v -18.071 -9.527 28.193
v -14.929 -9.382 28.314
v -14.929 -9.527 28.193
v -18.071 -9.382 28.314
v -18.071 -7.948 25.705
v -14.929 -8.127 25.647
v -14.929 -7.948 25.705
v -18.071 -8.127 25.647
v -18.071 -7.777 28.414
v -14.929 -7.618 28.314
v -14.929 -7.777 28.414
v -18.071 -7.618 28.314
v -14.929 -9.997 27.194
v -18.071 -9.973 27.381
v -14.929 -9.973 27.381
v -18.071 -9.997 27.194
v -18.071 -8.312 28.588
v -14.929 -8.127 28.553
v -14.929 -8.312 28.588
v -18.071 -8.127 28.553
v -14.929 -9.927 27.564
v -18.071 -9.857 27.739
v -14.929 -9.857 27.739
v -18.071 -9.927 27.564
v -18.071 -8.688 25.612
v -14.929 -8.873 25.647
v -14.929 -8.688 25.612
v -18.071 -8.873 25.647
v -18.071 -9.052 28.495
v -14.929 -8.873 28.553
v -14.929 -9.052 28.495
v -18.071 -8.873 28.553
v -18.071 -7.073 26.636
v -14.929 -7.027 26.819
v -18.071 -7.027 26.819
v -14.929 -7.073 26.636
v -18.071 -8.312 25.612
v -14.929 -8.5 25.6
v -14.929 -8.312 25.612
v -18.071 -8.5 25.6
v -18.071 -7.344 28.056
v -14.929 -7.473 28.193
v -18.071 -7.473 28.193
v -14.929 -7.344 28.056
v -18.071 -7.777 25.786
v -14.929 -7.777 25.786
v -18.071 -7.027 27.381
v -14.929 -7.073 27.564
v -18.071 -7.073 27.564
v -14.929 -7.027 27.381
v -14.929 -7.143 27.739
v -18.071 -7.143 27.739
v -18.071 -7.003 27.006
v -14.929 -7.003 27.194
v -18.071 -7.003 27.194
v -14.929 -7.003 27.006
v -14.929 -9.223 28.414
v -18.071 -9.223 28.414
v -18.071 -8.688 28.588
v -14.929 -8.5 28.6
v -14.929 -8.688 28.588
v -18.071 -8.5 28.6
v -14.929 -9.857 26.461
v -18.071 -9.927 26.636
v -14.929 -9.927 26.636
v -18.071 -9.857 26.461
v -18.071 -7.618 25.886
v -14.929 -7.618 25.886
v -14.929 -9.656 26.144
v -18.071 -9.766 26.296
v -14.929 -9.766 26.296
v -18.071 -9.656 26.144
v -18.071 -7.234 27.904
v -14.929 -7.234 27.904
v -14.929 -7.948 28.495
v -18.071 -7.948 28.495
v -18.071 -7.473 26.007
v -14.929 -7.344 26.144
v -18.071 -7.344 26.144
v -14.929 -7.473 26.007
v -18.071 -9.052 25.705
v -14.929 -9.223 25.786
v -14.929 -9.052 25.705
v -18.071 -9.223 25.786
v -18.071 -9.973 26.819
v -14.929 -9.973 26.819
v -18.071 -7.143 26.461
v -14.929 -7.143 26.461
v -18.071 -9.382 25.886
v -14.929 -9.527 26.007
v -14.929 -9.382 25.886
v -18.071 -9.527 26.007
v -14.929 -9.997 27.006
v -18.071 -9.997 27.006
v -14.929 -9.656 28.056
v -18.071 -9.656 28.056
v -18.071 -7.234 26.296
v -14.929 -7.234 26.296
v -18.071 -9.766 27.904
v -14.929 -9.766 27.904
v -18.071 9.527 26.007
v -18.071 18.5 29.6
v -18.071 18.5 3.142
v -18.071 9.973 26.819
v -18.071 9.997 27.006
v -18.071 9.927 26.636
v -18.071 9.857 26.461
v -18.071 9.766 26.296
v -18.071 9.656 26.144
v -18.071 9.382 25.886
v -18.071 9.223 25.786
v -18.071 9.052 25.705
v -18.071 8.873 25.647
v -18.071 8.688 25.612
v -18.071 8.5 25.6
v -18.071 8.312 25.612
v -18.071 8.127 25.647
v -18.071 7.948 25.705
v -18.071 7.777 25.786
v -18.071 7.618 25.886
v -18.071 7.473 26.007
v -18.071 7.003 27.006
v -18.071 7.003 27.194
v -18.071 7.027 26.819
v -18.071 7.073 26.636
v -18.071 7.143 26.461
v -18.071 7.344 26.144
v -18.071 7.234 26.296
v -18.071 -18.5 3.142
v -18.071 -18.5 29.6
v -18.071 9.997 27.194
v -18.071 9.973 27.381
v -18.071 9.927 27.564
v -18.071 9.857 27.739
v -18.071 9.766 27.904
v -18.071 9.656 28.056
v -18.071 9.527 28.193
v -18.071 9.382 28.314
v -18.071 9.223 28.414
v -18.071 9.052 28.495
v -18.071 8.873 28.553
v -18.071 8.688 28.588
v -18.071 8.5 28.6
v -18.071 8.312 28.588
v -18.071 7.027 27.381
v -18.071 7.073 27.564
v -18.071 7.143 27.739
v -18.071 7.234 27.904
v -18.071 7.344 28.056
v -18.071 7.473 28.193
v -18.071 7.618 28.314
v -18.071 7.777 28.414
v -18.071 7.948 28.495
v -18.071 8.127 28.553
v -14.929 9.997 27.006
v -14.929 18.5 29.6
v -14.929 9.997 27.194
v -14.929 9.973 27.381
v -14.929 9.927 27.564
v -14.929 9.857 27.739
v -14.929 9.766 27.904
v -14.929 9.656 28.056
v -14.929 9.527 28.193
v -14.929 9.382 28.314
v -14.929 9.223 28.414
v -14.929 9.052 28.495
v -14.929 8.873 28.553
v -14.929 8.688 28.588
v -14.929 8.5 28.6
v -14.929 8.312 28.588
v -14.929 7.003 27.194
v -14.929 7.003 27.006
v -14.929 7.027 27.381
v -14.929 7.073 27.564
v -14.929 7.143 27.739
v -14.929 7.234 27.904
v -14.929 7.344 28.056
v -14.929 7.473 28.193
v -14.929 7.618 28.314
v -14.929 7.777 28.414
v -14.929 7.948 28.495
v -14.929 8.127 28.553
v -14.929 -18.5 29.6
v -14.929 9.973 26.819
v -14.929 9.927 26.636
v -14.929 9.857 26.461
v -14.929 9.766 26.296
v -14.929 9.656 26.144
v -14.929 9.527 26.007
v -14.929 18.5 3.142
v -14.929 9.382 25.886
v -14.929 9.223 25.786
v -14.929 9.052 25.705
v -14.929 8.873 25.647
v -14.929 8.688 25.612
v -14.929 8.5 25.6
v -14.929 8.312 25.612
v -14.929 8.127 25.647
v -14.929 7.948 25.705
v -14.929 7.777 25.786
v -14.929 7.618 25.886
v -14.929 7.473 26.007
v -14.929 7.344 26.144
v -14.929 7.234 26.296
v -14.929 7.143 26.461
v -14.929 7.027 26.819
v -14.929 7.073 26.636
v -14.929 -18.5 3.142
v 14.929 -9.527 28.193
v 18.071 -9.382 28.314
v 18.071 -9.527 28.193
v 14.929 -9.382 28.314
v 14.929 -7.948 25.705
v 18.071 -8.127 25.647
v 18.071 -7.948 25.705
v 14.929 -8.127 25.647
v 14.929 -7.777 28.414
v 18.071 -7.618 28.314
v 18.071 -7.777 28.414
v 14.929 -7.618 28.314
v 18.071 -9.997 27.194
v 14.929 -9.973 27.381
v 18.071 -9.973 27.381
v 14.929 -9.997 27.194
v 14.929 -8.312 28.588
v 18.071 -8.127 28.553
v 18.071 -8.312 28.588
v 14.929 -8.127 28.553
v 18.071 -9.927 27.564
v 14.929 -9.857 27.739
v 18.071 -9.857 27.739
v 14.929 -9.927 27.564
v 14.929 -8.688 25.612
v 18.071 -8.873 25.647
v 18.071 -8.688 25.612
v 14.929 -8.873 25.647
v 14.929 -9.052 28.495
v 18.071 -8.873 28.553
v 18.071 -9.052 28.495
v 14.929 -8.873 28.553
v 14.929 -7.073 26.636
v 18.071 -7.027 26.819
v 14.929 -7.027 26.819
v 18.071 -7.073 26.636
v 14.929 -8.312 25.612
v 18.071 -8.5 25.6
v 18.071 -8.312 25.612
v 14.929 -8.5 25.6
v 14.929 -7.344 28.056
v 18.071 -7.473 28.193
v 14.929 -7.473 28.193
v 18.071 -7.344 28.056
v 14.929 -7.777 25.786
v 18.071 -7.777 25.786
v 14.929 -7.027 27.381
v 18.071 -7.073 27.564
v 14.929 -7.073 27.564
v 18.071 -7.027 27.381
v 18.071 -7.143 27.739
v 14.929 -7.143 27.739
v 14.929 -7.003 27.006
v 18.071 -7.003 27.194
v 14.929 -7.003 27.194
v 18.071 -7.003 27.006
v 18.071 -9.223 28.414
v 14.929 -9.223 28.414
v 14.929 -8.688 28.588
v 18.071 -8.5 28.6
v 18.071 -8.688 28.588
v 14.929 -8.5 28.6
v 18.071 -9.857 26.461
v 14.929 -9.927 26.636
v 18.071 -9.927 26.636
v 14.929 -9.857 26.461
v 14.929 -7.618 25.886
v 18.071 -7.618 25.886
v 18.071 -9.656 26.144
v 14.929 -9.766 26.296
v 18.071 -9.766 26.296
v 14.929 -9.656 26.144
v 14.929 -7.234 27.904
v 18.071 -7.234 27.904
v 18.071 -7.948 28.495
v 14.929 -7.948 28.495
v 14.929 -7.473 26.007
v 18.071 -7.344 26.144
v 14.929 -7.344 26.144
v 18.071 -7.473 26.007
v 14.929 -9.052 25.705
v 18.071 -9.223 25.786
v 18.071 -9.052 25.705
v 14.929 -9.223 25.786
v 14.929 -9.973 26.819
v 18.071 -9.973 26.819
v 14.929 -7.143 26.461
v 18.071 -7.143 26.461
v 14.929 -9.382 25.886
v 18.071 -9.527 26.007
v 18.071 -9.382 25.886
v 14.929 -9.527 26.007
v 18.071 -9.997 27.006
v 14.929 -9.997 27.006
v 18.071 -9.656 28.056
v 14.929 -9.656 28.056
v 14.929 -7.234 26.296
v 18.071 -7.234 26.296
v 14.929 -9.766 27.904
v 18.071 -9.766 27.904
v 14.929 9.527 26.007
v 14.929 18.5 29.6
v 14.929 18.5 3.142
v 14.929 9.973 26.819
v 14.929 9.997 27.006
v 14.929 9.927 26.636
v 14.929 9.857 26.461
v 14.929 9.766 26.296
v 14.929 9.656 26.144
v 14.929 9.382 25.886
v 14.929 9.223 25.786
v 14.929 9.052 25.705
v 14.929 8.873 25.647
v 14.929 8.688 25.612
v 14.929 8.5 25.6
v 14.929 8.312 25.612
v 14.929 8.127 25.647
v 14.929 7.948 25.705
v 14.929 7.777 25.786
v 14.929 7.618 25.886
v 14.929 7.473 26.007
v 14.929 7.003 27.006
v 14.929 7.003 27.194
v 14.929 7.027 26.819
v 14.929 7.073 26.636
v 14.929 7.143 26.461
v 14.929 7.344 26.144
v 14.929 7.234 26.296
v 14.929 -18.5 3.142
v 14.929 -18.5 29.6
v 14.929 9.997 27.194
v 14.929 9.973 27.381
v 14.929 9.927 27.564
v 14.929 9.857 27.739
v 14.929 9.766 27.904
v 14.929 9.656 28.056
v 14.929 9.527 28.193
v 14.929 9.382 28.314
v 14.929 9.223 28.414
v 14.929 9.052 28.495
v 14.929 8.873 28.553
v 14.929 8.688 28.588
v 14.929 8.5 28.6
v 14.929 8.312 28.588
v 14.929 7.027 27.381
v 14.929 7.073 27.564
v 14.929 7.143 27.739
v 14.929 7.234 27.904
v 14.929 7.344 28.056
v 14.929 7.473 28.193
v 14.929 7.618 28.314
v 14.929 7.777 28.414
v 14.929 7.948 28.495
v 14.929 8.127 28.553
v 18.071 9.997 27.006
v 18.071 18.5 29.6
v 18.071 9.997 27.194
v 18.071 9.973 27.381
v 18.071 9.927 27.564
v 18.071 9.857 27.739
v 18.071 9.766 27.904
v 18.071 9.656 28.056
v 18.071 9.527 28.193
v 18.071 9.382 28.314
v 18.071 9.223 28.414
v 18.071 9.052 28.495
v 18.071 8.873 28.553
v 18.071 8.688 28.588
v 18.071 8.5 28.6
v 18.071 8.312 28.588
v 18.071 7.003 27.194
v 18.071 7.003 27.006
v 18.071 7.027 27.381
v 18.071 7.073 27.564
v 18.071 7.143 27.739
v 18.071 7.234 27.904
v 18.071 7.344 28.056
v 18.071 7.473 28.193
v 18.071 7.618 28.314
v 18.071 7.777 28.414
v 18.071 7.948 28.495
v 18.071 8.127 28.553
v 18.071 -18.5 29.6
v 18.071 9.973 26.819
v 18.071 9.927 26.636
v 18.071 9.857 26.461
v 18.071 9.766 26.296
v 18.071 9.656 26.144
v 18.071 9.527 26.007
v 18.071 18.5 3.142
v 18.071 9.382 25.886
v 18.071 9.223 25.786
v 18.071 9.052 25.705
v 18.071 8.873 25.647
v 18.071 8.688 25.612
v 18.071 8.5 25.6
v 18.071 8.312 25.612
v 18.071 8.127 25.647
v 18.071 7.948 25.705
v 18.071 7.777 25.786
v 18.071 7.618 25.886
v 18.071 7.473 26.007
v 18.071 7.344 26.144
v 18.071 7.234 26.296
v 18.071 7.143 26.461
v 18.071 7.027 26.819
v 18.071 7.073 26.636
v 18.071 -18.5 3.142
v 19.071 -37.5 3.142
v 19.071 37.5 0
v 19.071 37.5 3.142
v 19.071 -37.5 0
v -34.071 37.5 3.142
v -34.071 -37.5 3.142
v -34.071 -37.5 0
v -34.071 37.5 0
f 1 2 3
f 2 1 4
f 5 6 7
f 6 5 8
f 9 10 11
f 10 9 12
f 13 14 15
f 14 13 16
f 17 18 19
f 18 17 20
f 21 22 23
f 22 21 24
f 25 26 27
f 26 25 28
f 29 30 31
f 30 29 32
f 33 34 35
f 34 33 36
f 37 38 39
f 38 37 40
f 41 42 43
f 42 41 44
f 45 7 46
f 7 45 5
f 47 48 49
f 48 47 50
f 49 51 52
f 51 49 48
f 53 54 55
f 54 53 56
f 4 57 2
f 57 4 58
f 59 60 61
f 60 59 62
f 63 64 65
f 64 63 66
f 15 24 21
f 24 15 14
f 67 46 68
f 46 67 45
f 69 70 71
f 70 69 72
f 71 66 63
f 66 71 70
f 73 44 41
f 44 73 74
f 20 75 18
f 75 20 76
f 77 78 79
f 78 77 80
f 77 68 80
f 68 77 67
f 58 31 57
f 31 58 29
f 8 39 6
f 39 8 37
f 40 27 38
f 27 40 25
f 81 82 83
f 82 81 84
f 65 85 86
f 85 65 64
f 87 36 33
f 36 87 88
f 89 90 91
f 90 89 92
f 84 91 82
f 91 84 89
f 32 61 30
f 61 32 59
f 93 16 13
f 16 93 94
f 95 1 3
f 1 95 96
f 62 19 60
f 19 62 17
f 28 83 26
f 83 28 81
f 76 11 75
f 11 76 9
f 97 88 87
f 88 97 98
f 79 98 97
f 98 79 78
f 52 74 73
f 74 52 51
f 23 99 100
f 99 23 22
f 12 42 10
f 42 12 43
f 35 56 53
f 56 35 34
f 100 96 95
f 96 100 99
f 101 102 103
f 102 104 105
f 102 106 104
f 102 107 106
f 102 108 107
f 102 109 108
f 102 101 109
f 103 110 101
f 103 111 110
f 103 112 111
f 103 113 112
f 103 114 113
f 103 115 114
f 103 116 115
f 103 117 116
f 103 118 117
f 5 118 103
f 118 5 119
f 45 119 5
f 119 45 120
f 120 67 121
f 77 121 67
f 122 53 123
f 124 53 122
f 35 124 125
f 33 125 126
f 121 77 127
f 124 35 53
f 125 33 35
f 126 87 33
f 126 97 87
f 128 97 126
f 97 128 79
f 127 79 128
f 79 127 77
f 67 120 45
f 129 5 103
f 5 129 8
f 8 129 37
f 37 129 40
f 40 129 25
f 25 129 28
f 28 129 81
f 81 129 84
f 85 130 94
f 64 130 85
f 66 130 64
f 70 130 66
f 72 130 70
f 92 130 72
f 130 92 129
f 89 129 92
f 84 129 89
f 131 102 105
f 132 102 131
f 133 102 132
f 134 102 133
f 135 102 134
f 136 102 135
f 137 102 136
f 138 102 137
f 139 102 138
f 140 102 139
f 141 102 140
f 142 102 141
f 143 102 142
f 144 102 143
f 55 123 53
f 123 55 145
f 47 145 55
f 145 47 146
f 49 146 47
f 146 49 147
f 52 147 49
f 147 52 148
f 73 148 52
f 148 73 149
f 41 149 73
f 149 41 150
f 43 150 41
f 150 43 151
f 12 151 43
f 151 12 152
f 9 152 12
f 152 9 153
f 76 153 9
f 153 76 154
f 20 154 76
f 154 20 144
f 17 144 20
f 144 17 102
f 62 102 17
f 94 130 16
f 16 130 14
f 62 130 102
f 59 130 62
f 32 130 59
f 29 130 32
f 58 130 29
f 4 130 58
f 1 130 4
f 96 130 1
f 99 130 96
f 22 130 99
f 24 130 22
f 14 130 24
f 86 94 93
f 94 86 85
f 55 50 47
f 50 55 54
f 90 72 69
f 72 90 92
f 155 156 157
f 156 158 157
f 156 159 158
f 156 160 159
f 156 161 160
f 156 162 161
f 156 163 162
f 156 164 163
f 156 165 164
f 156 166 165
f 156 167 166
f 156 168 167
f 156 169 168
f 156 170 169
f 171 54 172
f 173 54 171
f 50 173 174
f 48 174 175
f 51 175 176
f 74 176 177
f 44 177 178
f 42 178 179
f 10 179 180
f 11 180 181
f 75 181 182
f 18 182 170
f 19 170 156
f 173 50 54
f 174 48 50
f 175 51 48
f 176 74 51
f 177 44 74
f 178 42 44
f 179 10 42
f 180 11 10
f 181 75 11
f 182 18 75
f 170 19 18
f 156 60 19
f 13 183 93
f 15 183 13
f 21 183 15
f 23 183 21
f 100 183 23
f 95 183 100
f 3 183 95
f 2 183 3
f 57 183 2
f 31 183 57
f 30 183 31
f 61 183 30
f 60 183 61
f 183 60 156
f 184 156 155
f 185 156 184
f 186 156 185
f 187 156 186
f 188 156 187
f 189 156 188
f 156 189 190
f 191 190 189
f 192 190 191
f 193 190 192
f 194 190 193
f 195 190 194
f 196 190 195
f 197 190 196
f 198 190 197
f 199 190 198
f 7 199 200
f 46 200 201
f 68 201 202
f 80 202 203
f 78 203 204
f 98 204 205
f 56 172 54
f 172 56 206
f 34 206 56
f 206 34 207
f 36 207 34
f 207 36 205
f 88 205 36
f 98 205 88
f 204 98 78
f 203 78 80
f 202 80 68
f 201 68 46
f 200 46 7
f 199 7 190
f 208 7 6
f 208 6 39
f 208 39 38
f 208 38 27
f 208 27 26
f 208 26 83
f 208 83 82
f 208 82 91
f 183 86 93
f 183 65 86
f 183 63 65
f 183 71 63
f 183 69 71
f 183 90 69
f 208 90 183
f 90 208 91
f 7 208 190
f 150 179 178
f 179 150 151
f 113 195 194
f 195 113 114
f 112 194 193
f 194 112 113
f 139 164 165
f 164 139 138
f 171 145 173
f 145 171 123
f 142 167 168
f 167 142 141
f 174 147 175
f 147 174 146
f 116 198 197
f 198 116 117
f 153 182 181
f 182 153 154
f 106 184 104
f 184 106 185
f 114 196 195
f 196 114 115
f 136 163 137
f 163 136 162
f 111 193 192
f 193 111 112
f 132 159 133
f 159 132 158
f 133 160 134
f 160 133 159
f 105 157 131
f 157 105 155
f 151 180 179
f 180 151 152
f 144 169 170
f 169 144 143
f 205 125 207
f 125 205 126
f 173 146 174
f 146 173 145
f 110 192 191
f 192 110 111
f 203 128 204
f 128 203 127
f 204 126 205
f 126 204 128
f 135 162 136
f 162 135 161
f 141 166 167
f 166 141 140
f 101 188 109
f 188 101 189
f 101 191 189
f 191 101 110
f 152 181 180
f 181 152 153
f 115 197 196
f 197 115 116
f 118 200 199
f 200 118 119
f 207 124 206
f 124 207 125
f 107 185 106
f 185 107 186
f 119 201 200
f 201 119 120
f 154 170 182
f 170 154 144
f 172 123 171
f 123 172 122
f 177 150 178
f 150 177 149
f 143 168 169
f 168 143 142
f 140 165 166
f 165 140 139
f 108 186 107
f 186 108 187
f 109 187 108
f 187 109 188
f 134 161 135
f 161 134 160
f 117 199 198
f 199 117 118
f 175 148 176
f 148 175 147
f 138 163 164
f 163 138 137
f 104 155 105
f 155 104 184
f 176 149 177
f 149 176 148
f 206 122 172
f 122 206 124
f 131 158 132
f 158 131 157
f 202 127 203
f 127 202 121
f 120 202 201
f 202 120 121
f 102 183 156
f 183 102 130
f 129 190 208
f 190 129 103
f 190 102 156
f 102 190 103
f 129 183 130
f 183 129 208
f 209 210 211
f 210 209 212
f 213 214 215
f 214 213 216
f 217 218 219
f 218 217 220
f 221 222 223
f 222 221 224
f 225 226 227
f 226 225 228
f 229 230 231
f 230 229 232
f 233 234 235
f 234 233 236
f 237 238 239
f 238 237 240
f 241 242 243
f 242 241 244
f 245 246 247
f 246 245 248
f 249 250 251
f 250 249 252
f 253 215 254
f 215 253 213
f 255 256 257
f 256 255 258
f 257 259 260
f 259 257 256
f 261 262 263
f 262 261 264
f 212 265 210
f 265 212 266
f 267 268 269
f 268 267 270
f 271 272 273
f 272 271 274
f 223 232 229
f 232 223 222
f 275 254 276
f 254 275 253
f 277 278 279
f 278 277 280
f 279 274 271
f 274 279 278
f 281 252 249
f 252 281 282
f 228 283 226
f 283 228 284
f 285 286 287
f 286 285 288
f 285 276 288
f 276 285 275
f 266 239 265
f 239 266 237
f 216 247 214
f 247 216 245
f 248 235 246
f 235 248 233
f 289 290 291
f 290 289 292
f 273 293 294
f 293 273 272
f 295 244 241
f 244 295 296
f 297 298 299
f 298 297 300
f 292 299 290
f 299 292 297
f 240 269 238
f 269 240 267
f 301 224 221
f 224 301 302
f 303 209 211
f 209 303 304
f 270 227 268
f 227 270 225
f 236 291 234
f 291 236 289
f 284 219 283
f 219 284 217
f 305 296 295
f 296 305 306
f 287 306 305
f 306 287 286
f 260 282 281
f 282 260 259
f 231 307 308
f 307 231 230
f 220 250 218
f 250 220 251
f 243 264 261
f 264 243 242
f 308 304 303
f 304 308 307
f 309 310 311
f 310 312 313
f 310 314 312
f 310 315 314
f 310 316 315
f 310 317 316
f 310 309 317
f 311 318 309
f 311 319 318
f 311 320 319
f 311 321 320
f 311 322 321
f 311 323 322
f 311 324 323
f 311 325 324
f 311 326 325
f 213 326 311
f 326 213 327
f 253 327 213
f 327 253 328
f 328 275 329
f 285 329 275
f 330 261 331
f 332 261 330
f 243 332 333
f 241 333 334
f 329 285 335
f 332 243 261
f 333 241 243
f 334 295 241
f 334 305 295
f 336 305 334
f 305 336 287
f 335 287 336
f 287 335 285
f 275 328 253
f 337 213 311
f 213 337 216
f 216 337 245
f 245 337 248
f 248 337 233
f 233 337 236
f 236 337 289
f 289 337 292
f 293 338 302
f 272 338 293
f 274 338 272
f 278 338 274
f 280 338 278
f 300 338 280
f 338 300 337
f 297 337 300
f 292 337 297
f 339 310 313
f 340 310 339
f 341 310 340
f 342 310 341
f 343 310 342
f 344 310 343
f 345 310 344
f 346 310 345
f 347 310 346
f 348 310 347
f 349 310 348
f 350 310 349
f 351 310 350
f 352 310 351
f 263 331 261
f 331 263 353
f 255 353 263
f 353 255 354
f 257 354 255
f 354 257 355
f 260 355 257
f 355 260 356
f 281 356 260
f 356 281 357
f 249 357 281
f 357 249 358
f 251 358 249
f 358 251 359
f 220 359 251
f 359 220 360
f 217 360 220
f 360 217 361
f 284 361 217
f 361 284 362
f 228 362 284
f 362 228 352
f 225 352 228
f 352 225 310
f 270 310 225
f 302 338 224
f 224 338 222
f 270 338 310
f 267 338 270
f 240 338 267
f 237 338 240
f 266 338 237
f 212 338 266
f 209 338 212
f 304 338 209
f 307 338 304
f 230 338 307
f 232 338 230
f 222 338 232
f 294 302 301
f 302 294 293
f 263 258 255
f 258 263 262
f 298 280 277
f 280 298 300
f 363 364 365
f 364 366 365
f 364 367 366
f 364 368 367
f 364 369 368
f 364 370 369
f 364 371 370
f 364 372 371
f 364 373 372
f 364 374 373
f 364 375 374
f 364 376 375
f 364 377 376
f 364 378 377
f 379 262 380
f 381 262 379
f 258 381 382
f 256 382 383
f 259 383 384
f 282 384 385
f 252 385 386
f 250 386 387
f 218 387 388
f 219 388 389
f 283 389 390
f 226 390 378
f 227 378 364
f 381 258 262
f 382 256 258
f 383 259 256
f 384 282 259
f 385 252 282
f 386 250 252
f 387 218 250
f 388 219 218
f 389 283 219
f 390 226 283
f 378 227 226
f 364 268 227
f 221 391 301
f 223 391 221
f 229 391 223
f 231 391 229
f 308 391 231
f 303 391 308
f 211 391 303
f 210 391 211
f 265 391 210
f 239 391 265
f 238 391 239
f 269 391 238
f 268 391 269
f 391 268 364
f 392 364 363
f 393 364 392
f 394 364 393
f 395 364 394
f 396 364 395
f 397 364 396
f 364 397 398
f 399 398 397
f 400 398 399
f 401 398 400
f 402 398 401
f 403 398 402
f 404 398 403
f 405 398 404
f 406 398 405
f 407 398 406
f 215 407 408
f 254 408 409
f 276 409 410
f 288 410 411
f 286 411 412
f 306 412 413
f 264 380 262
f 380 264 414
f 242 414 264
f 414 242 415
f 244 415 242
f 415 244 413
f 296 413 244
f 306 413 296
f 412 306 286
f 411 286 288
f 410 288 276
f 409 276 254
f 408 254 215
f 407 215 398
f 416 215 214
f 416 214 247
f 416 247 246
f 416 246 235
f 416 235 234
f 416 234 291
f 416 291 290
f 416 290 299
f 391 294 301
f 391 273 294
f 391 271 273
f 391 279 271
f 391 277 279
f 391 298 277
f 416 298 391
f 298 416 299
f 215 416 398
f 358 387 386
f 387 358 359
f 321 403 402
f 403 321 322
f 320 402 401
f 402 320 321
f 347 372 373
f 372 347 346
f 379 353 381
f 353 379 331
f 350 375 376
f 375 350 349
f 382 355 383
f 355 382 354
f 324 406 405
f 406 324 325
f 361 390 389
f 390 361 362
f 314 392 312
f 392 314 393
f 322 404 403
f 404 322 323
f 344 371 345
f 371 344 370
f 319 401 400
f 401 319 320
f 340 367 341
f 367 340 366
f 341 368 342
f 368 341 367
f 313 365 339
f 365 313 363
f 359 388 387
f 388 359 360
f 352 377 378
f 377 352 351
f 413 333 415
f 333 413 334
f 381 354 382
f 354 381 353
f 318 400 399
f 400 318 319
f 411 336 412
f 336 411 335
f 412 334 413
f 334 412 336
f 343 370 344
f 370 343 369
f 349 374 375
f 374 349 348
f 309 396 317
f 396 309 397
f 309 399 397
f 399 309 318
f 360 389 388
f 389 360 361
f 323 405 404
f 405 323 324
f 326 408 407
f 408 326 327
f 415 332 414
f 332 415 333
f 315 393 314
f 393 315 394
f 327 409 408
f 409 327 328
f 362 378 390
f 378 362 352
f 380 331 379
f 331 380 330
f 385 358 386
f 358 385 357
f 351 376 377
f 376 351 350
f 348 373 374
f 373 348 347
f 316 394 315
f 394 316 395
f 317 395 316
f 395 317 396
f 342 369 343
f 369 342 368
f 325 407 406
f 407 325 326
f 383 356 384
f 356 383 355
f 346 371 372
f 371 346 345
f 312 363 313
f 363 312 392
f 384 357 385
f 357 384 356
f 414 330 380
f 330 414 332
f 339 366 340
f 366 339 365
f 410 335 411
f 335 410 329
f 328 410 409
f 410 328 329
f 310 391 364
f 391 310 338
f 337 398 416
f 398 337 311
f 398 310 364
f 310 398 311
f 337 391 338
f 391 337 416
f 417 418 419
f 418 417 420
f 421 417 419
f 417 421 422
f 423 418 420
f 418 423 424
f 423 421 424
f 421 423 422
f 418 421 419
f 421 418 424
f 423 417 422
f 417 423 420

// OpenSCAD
// Parameters
base_size = [35 + PI + 15, 75, PI]; // width, depth, height
pillar_size = [PI, 37, 29.6 - PI]; // width, depth, height
pillar_spacing = 33; // distance between the centers of the pillars
hole_diameter = 3; // Diameter of the screw holes
top_edge_offset = 2.5; // Offset from the top edge for hole placement (prev:5)
side_edge_offset = 10; // Offset from the side edge for hole placement (prev:11)
hole_facets = 50; // Number of facets for the hole cylinder


// Modules
module base() {
    cube(base_size);
}

module pillar_with_holes() {
    difference() {
        cube(pillar_size);
        // Create horizontal holes that go all the way through the pillar
        for (y = [side_edge_offset, pillar_size[1] - side_edge_offset]) {
            translate([0, y, pillar_size[2] - top_edge_offset]) {
                rotate([0, 90, 0]) cylinder(h = pillar_size[0], d = hole_diameter, $fn = hole_facets);
            }
        }
    }
}

// Create the base
translate([-base_size[0]/2 - 15/2, -base_size[1]/2, 0]) {
    base();
}

// Create the first pillar with holes
translate([-pillar_spacing/2 - pillar_size[0]/2, -pillar_size[1]/2, base_size[2]]) {
    pillar_with_holes();
}

// Create the second pillar with holes
translate([pillar_spacing/2 - pillar_size[0]/2, -pillar_size[1]/2, base_size[2]]) {
    pillar_with_holes();
}
